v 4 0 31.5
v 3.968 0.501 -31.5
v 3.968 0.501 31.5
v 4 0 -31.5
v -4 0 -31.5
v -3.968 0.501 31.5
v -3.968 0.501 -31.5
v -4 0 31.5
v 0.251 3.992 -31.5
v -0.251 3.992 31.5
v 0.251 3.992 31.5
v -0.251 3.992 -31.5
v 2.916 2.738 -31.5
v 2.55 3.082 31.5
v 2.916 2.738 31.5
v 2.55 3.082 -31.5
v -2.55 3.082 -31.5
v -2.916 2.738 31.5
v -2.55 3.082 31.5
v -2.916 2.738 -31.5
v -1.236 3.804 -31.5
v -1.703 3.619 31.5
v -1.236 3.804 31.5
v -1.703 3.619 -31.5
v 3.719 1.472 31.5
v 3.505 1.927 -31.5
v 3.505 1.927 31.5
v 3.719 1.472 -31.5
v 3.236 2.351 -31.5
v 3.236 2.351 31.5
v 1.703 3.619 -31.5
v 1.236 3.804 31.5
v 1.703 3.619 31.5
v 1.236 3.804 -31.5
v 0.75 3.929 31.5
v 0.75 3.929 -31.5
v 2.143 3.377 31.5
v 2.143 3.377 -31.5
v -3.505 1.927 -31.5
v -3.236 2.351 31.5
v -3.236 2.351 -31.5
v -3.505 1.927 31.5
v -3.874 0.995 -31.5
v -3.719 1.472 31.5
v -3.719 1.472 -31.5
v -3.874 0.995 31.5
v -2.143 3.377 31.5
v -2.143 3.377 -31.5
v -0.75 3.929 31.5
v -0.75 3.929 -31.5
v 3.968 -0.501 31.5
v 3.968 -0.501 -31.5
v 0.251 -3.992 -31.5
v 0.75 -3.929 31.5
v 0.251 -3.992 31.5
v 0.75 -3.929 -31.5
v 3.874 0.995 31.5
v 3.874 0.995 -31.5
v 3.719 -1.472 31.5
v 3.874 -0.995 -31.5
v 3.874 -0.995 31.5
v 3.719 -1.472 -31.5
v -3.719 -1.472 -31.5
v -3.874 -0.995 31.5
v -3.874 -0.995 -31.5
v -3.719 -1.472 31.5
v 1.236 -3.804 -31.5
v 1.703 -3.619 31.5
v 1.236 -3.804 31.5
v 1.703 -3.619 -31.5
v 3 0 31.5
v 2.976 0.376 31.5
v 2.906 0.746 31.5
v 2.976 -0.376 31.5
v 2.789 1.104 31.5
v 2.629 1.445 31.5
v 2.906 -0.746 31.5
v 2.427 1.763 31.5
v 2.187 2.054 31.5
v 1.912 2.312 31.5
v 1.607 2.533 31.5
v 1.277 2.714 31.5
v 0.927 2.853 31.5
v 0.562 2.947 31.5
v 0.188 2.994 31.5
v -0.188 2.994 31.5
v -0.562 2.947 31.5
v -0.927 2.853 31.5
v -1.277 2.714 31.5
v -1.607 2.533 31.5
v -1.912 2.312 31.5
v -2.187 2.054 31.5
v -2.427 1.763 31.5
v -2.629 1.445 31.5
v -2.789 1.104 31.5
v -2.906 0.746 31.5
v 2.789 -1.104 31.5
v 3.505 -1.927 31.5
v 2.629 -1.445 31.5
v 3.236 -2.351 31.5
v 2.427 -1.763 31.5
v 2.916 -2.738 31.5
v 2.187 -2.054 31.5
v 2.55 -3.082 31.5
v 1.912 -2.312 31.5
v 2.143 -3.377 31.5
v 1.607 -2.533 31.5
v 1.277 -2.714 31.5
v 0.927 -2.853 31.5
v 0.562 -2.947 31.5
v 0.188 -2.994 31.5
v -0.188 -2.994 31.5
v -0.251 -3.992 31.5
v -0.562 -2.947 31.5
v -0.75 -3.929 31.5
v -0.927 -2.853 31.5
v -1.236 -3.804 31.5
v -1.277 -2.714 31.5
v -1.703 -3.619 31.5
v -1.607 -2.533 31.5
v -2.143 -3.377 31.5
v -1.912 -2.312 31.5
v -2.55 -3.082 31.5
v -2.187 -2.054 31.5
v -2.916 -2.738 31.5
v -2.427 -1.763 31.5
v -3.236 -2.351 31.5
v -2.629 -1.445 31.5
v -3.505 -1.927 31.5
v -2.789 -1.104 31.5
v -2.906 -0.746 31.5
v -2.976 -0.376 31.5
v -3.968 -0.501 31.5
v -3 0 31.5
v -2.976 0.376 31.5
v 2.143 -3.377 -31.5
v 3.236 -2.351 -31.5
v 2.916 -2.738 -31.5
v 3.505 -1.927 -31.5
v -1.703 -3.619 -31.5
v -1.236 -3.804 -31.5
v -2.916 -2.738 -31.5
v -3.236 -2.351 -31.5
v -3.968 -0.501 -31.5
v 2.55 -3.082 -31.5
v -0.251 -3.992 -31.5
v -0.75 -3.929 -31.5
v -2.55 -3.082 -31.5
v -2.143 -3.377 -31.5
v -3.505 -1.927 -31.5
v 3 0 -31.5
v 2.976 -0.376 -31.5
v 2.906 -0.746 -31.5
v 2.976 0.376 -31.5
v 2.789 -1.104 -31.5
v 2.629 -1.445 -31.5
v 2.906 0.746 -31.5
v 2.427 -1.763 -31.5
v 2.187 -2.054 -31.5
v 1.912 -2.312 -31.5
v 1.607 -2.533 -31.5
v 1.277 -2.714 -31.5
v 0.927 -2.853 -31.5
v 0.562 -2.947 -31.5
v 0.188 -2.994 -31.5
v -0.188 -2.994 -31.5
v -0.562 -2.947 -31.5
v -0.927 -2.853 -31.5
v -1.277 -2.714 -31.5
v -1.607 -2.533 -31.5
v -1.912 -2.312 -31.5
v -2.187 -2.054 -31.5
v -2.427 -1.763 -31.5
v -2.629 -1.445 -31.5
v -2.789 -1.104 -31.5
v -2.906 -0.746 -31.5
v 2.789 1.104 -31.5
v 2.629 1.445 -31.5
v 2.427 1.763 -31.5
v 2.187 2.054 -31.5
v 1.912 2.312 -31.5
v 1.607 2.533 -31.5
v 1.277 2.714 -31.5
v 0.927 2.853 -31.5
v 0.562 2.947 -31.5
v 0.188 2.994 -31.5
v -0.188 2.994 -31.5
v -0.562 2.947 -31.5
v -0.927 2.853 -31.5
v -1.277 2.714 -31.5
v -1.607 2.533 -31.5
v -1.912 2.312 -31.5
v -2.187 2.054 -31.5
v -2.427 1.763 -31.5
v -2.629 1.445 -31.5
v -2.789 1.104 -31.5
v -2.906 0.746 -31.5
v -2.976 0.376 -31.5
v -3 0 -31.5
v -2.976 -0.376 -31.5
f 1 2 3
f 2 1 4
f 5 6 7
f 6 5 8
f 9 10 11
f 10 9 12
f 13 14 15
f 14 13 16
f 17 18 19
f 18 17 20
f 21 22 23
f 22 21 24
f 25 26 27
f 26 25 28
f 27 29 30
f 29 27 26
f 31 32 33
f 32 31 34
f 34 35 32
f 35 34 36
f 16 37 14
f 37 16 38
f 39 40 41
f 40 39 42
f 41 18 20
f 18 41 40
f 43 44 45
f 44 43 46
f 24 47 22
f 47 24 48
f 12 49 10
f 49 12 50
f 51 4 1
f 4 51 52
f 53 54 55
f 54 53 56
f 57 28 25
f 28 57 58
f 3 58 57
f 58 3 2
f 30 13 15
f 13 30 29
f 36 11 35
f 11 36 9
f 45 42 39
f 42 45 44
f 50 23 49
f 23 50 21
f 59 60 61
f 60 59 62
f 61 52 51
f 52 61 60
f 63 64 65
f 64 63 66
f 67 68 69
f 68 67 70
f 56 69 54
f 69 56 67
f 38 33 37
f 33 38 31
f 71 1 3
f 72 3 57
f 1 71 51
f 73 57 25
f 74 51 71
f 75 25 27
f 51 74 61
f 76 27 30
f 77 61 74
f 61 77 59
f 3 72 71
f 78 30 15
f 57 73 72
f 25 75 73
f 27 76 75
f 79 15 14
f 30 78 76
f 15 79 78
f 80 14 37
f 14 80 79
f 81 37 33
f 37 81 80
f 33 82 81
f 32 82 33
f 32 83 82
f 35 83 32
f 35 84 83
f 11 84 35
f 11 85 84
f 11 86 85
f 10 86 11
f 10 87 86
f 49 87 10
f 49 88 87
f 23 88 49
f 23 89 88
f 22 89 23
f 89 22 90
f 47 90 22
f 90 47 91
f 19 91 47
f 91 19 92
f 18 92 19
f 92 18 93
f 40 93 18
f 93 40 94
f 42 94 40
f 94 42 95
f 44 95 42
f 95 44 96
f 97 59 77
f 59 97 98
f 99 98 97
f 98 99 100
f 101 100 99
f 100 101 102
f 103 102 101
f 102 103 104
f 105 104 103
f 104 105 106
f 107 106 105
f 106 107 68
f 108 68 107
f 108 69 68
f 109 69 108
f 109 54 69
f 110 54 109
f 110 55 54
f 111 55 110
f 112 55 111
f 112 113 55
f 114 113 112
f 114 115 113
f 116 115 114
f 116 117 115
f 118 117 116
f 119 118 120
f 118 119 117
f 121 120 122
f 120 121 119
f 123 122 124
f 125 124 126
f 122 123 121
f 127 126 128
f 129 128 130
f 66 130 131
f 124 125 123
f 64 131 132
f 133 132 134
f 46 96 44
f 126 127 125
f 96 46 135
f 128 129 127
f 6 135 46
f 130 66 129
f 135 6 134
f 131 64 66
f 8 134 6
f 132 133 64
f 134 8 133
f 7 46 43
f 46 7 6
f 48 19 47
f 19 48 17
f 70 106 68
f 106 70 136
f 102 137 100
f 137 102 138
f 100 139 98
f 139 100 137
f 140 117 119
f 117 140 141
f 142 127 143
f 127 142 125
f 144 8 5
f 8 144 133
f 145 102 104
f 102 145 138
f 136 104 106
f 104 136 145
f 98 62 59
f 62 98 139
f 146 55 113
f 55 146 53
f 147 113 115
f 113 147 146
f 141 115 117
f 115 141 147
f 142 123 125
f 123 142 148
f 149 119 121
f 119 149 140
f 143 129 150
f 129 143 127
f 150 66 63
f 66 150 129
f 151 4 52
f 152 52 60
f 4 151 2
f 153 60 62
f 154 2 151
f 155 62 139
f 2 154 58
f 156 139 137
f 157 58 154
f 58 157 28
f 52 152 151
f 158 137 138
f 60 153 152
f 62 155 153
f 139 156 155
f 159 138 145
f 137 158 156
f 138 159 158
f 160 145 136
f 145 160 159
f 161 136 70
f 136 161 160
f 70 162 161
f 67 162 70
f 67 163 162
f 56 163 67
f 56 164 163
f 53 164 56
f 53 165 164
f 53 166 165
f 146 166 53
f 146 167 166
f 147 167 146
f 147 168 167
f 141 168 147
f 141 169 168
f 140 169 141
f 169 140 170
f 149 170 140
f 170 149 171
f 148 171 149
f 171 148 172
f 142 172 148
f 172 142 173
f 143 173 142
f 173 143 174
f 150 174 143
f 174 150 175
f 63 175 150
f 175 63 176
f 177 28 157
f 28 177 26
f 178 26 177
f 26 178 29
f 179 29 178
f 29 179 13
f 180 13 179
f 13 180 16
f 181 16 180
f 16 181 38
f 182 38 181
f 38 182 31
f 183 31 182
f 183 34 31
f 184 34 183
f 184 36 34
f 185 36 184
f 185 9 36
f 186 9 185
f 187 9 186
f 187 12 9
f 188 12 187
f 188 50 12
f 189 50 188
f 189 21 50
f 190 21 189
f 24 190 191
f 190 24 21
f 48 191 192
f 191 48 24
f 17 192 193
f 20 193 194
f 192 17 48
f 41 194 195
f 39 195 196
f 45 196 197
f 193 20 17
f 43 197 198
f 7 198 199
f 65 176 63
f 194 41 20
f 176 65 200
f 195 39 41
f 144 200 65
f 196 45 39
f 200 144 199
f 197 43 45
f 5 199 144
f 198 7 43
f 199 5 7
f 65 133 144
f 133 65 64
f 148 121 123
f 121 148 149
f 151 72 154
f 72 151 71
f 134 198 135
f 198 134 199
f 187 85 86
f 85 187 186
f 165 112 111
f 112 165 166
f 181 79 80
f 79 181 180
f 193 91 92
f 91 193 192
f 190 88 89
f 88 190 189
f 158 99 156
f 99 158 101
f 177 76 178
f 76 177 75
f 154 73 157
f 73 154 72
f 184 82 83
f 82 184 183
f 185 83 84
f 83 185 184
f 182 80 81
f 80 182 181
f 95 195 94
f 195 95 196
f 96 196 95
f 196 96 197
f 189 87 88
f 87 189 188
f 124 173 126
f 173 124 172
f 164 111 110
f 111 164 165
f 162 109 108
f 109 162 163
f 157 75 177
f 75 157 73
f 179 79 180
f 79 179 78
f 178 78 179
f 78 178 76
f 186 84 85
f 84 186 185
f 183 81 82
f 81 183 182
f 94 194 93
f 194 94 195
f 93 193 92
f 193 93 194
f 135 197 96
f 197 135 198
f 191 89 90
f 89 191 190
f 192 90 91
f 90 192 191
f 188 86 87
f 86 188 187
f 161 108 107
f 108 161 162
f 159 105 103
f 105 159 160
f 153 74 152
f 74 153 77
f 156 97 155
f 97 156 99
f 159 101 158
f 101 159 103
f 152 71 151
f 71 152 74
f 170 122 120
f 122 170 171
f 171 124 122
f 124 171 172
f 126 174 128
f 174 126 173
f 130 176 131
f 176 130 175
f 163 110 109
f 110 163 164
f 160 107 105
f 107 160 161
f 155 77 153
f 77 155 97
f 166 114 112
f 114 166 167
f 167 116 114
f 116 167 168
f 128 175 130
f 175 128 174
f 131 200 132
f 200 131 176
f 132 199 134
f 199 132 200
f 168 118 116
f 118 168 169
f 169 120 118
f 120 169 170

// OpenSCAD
$fn = 50;


difference() {
	union() {
		translate(v = [0, 0, -31.5000000000]) {
			cylinder(h = 63, r = 4.0000000000);
		}
	}
	union() {
		translate(v = [0, 0, -100.0000000000]) {
			cylinder(h = 200, r = 3.0000000000);
		}
	}
}
